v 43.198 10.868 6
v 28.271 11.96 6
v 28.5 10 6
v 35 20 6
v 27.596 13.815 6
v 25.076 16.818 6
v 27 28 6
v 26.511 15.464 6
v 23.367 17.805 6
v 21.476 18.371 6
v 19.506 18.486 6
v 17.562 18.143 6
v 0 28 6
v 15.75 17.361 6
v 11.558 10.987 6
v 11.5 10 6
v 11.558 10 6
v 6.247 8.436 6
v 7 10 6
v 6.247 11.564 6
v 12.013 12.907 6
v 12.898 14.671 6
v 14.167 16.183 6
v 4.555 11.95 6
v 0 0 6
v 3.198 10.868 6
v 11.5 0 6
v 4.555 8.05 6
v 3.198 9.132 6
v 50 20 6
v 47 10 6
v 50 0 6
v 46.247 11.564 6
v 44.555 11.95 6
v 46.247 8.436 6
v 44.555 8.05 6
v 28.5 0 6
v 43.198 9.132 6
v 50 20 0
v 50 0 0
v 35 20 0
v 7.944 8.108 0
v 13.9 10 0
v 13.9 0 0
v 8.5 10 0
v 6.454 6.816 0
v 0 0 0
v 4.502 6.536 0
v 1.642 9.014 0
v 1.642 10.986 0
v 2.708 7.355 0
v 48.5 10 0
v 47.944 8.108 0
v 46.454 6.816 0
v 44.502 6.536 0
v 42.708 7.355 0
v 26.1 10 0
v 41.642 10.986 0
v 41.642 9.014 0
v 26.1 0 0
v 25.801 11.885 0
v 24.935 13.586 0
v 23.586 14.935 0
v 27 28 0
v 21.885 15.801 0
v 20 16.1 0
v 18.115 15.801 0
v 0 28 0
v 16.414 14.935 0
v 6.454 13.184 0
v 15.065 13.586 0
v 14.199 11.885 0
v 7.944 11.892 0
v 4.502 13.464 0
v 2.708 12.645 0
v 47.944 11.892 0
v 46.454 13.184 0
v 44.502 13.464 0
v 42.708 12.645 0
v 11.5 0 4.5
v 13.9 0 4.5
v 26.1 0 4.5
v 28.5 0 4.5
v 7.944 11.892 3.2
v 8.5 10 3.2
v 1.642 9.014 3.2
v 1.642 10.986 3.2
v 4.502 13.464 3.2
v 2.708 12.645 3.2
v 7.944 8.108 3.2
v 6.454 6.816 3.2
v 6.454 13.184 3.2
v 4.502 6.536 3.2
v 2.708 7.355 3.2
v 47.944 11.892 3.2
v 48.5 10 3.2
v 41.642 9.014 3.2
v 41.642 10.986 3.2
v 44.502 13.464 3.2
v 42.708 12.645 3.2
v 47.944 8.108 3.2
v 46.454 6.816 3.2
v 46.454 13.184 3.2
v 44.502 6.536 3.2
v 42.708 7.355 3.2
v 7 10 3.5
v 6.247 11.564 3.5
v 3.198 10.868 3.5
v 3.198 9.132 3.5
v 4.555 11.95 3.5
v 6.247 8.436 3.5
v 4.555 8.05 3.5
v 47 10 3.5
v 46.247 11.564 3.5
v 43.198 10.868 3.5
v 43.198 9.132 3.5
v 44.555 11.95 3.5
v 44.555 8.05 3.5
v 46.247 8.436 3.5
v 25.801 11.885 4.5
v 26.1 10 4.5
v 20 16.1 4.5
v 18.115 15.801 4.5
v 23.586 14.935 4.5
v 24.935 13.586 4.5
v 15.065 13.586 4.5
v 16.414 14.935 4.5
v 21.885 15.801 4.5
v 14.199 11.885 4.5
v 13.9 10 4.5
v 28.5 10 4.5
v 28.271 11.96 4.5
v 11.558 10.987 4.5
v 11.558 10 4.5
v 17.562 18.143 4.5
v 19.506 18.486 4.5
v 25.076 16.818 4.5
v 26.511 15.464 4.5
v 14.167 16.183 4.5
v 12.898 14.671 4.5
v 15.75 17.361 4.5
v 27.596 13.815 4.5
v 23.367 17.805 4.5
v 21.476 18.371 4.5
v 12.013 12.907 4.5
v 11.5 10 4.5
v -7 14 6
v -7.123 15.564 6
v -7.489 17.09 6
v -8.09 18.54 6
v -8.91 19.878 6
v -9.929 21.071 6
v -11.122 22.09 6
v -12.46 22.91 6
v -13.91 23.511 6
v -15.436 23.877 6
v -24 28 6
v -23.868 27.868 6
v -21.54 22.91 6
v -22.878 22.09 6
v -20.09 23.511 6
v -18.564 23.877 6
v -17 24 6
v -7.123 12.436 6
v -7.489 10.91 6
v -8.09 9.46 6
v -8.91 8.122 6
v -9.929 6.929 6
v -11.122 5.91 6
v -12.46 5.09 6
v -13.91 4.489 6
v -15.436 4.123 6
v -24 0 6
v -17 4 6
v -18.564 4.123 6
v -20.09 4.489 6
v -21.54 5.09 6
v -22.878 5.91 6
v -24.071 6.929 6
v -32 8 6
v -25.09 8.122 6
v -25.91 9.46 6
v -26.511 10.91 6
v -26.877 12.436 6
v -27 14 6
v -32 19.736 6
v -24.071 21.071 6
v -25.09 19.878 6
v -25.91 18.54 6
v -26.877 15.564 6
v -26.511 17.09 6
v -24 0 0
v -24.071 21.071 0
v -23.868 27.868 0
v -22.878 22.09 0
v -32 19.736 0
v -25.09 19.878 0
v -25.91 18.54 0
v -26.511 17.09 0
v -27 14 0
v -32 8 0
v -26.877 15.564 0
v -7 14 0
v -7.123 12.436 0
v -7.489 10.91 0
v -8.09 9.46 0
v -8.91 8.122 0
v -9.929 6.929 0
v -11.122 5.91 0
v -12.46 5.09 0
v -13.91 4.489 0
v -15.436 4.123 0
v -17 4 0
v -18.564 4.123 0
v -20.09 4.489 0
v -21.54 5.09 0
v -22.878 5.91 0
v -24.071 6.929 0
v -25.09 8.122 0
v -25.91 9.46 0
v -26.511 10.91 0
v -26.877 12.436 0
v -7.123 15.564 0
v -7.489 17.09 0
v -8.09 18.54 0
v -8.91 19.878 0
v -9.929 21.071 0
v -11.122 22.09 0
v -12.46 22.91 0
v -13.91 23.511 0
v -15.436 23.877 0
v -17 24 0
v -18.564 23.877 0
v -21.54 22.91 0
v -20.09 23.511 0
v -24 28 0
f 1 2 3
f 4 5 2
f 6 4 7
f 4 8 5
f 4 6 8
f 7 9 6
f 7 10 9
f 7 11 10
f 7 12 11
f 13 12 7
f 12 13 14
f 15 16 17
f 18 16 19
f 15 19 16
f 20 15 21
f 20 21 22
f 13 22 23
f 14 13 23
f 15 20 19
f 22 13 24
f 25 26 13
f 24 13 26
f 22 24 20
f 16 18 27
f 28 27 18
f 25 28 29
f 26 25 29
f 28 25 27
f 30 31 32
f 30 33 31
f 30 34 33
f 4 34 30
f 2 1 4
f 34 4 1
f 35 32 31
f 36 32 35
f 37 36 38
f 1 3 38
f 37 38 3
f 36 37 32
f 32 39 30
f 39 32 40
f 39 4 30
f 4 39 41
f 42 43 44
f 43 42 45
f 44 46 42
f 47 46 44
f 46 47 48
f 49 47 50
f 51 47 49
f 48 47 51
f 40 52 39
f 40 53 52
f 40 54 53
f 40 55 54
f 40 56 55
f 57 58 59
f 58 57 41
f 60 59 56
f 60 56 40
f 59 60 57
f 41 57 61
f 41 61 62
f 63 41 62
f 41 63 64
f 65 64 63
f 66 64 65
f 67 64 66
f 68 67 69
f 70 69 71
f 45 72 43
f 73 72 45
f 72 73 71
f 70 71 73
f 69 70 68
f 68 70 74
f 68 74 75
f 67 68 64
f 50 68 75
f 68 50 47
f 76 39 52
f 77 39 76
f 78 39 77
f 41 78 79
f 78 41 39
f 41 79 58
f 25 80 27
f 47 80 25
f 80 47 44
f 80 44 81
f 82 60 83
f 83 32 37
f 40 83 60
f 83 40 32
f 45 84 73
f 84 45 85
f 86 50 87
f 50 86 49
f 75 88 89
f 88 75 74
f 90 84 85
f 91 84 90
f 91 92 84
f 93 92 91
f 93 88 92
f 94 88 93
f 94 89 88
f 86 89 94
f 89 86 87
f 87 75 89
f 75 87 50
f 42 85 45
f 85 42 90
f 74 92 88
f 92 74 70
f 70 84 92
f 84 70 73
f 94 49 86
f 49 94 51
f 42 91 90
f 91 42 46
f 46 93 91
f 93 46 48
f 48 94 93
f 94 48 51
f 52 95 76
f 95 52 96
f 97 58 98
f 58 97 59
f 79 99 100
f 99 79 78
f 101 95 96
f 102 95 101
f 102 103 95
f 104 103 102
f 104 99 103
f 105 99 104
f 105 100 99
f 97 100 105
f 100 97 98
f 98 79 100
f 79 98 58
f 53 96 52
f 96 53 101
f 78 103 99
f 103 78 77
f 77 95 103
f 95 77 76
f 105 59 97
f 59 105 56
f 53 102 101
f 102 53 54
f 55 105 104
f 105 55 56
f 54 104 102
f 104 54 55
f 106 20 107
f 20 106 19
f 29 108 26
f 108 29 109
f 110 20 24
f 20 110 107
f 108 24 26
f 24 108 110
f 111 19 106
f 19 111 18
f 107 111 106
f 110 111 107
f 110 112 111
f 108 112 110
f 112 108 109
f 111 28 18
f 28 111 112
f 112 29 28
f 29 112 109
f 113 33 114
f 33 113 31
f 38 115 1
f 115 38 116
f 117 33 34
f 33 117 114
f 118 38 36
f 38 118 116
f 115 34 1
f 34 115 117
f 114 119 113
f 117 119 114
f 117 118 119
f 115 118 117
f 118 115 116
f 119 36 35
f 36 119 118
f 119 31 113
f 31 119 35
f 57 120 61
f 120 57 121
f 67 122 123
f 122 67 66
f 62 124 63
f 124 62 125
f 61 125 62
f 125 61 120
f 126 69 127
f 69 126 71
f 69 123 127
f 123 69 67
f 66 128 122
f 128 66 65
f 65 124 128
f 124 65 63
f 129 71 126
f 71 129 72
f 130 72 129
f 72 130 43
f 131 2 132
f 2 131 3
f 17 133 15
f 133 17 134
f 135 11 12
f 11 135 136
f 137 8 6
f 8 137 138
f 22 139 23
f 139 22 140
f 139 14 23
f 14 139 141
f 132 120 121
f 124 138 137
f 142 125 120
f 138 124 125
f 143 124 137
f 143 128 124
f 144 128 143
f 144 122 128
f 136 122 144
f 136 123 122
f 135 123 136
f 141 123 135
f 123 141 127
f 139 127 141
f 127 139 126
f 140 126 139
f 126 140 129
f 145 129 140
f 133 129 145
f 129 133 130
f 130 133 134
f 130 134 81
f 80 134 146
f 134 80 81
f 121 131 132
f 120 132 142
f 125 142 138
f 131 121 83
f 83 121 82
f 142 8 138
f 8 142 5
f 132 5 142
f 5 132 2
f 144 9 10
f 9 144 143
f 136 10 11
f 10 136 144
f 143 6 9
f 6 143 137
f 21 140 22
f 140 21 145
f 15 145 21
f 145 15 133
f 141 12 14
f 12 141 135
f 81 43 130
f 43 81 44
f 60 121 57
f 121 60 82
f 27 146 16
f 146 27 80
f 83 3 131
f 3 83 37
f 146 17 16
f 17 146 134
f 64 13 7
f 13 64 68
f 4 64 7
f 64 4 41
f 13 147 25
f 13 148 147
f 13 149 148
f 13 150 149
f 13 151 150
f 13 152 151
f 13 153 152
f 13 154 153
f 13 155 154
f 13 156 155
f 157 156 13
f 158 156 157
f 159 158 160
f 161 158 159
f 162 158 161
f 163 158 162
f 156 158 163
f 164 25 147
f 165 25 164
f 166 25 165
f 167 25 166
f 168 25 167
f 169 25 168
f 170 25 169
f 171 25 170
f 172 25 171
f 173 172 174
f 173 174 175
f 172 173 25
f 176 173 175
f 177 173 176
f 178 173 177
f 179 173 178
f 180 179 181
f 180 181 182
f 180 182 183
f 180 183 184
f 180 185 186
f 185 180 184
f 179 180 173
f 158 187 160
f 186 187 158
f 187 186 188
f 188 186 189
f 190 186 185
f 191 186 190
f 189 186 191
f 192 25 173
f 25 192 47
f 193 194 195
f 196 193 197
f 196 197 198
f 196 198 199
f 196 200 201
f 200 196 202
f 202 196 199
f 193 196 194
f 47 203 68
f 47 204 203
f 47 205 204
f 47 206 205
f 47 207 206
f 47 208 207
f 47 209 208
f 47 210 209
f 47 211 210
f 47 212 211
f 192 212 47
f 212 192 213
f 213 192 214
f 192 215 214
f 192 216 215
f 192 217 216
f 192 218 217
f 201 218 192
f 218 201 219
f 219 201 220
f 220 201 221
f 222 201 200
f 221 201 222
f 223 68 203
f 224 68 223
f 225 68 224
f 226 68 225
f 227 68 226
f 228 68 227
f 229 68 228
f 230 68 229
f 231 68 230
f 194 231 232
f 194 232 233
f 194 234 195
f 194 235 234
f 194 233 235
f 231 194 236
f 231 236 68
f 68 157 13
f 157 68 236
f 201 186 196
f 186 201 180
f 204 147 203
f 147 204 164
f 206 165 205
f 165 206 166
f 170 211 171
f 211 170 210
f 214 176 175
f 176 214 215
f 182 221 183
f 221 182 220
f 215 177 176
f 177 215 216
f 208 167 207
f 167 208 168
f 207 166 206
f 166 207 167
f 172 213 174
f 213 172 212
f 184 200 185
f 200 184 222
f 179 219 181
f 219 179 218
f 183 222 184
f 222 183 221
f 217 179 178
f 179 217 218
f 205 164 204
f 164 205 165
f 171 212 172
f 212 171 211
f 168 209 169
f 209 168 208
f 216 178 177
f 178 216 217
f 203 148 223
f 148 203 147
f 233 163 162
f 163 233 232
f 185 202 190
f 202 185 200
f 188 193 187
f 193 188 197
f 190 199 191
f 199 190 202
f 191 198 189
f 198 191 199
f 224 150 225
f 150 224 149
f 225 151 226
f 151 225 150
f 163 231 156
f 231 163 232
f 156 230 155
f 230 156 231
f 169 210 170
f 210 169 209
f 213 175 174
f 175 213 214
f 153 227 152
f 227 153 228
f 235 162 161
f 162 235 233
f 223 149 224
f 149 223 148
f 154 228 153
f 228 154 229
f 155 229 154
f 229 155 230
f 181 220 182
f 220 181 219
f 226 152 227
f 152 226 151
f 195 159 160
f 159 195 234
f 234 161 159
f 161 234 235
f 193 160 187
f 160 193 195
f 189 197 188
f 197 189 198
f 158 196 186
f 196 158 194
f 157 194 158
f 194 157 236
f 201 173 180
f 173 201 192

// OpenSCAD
union(){
    translate([0,28,0]){
    difference(){
     inductive_hole();
     fancy();      
    }
}
    default_groovemount();
    goovemount_extension();
}
module inductive_hole(){
    rotate([90,0,0]){
   difference(){
     translate([0,0,0])rotate([0,0,90])cube([6,32,28]);
       translate([-17,6.5,14])rotate([90,0,0])cylinder(r=10, h=7, $fn=40);
      // translate([-31,0,-7])rotate([0,-45,0])cube([10,6,11.5]);
    }
}
 }
 
 module fancy(){
     rotate([90,0,0]){
     translate([-32,0,-8])rotate([0,-45,0])cube([11.5,6,11.5]);
     //translate([-32+32,0,-8])rotate([0,-45,0])cube([11.5,6,11.5]);
     //translate([-32+32,0,-8+28])rotate([0,-45,0])cube([11.5,6,11.5]);
     translate([-32,0,-8+28])rotate([0,-45,0])cube([11.5,6,11.5]);
     }
 }
 
 module default_groovemount(){
         difference(){
    cube([50,20,6]);

    translate([5,10,0])cylinder(r=3.5,h=3.2);
    translate([45,10,0])cylinder(r=3.5,h=3.2);

    translate([5,10,3.5])cylinder(r=2,h=3.5);
    translate([45,10,3.5])cylinder(r=2,h=3.5);


    translate([20,10,0])cylinder(r=6.1,h=10);
    translate([20,10,4.5])cylinder(r=8.5,h=10);

    translate([20-6.1,0,0]) cube([12.2,10,10]);

    translate([20-8.5,0,4.5]) cube([17,10,10]);
}
}

module goovemount_extension(){
    difference(){
    translate([0,20,0]) cube([35,8,6]);
    translate([27,28,0])rotate([0,0,-45])cube([11.5,6,11.5]);  
    }
}
